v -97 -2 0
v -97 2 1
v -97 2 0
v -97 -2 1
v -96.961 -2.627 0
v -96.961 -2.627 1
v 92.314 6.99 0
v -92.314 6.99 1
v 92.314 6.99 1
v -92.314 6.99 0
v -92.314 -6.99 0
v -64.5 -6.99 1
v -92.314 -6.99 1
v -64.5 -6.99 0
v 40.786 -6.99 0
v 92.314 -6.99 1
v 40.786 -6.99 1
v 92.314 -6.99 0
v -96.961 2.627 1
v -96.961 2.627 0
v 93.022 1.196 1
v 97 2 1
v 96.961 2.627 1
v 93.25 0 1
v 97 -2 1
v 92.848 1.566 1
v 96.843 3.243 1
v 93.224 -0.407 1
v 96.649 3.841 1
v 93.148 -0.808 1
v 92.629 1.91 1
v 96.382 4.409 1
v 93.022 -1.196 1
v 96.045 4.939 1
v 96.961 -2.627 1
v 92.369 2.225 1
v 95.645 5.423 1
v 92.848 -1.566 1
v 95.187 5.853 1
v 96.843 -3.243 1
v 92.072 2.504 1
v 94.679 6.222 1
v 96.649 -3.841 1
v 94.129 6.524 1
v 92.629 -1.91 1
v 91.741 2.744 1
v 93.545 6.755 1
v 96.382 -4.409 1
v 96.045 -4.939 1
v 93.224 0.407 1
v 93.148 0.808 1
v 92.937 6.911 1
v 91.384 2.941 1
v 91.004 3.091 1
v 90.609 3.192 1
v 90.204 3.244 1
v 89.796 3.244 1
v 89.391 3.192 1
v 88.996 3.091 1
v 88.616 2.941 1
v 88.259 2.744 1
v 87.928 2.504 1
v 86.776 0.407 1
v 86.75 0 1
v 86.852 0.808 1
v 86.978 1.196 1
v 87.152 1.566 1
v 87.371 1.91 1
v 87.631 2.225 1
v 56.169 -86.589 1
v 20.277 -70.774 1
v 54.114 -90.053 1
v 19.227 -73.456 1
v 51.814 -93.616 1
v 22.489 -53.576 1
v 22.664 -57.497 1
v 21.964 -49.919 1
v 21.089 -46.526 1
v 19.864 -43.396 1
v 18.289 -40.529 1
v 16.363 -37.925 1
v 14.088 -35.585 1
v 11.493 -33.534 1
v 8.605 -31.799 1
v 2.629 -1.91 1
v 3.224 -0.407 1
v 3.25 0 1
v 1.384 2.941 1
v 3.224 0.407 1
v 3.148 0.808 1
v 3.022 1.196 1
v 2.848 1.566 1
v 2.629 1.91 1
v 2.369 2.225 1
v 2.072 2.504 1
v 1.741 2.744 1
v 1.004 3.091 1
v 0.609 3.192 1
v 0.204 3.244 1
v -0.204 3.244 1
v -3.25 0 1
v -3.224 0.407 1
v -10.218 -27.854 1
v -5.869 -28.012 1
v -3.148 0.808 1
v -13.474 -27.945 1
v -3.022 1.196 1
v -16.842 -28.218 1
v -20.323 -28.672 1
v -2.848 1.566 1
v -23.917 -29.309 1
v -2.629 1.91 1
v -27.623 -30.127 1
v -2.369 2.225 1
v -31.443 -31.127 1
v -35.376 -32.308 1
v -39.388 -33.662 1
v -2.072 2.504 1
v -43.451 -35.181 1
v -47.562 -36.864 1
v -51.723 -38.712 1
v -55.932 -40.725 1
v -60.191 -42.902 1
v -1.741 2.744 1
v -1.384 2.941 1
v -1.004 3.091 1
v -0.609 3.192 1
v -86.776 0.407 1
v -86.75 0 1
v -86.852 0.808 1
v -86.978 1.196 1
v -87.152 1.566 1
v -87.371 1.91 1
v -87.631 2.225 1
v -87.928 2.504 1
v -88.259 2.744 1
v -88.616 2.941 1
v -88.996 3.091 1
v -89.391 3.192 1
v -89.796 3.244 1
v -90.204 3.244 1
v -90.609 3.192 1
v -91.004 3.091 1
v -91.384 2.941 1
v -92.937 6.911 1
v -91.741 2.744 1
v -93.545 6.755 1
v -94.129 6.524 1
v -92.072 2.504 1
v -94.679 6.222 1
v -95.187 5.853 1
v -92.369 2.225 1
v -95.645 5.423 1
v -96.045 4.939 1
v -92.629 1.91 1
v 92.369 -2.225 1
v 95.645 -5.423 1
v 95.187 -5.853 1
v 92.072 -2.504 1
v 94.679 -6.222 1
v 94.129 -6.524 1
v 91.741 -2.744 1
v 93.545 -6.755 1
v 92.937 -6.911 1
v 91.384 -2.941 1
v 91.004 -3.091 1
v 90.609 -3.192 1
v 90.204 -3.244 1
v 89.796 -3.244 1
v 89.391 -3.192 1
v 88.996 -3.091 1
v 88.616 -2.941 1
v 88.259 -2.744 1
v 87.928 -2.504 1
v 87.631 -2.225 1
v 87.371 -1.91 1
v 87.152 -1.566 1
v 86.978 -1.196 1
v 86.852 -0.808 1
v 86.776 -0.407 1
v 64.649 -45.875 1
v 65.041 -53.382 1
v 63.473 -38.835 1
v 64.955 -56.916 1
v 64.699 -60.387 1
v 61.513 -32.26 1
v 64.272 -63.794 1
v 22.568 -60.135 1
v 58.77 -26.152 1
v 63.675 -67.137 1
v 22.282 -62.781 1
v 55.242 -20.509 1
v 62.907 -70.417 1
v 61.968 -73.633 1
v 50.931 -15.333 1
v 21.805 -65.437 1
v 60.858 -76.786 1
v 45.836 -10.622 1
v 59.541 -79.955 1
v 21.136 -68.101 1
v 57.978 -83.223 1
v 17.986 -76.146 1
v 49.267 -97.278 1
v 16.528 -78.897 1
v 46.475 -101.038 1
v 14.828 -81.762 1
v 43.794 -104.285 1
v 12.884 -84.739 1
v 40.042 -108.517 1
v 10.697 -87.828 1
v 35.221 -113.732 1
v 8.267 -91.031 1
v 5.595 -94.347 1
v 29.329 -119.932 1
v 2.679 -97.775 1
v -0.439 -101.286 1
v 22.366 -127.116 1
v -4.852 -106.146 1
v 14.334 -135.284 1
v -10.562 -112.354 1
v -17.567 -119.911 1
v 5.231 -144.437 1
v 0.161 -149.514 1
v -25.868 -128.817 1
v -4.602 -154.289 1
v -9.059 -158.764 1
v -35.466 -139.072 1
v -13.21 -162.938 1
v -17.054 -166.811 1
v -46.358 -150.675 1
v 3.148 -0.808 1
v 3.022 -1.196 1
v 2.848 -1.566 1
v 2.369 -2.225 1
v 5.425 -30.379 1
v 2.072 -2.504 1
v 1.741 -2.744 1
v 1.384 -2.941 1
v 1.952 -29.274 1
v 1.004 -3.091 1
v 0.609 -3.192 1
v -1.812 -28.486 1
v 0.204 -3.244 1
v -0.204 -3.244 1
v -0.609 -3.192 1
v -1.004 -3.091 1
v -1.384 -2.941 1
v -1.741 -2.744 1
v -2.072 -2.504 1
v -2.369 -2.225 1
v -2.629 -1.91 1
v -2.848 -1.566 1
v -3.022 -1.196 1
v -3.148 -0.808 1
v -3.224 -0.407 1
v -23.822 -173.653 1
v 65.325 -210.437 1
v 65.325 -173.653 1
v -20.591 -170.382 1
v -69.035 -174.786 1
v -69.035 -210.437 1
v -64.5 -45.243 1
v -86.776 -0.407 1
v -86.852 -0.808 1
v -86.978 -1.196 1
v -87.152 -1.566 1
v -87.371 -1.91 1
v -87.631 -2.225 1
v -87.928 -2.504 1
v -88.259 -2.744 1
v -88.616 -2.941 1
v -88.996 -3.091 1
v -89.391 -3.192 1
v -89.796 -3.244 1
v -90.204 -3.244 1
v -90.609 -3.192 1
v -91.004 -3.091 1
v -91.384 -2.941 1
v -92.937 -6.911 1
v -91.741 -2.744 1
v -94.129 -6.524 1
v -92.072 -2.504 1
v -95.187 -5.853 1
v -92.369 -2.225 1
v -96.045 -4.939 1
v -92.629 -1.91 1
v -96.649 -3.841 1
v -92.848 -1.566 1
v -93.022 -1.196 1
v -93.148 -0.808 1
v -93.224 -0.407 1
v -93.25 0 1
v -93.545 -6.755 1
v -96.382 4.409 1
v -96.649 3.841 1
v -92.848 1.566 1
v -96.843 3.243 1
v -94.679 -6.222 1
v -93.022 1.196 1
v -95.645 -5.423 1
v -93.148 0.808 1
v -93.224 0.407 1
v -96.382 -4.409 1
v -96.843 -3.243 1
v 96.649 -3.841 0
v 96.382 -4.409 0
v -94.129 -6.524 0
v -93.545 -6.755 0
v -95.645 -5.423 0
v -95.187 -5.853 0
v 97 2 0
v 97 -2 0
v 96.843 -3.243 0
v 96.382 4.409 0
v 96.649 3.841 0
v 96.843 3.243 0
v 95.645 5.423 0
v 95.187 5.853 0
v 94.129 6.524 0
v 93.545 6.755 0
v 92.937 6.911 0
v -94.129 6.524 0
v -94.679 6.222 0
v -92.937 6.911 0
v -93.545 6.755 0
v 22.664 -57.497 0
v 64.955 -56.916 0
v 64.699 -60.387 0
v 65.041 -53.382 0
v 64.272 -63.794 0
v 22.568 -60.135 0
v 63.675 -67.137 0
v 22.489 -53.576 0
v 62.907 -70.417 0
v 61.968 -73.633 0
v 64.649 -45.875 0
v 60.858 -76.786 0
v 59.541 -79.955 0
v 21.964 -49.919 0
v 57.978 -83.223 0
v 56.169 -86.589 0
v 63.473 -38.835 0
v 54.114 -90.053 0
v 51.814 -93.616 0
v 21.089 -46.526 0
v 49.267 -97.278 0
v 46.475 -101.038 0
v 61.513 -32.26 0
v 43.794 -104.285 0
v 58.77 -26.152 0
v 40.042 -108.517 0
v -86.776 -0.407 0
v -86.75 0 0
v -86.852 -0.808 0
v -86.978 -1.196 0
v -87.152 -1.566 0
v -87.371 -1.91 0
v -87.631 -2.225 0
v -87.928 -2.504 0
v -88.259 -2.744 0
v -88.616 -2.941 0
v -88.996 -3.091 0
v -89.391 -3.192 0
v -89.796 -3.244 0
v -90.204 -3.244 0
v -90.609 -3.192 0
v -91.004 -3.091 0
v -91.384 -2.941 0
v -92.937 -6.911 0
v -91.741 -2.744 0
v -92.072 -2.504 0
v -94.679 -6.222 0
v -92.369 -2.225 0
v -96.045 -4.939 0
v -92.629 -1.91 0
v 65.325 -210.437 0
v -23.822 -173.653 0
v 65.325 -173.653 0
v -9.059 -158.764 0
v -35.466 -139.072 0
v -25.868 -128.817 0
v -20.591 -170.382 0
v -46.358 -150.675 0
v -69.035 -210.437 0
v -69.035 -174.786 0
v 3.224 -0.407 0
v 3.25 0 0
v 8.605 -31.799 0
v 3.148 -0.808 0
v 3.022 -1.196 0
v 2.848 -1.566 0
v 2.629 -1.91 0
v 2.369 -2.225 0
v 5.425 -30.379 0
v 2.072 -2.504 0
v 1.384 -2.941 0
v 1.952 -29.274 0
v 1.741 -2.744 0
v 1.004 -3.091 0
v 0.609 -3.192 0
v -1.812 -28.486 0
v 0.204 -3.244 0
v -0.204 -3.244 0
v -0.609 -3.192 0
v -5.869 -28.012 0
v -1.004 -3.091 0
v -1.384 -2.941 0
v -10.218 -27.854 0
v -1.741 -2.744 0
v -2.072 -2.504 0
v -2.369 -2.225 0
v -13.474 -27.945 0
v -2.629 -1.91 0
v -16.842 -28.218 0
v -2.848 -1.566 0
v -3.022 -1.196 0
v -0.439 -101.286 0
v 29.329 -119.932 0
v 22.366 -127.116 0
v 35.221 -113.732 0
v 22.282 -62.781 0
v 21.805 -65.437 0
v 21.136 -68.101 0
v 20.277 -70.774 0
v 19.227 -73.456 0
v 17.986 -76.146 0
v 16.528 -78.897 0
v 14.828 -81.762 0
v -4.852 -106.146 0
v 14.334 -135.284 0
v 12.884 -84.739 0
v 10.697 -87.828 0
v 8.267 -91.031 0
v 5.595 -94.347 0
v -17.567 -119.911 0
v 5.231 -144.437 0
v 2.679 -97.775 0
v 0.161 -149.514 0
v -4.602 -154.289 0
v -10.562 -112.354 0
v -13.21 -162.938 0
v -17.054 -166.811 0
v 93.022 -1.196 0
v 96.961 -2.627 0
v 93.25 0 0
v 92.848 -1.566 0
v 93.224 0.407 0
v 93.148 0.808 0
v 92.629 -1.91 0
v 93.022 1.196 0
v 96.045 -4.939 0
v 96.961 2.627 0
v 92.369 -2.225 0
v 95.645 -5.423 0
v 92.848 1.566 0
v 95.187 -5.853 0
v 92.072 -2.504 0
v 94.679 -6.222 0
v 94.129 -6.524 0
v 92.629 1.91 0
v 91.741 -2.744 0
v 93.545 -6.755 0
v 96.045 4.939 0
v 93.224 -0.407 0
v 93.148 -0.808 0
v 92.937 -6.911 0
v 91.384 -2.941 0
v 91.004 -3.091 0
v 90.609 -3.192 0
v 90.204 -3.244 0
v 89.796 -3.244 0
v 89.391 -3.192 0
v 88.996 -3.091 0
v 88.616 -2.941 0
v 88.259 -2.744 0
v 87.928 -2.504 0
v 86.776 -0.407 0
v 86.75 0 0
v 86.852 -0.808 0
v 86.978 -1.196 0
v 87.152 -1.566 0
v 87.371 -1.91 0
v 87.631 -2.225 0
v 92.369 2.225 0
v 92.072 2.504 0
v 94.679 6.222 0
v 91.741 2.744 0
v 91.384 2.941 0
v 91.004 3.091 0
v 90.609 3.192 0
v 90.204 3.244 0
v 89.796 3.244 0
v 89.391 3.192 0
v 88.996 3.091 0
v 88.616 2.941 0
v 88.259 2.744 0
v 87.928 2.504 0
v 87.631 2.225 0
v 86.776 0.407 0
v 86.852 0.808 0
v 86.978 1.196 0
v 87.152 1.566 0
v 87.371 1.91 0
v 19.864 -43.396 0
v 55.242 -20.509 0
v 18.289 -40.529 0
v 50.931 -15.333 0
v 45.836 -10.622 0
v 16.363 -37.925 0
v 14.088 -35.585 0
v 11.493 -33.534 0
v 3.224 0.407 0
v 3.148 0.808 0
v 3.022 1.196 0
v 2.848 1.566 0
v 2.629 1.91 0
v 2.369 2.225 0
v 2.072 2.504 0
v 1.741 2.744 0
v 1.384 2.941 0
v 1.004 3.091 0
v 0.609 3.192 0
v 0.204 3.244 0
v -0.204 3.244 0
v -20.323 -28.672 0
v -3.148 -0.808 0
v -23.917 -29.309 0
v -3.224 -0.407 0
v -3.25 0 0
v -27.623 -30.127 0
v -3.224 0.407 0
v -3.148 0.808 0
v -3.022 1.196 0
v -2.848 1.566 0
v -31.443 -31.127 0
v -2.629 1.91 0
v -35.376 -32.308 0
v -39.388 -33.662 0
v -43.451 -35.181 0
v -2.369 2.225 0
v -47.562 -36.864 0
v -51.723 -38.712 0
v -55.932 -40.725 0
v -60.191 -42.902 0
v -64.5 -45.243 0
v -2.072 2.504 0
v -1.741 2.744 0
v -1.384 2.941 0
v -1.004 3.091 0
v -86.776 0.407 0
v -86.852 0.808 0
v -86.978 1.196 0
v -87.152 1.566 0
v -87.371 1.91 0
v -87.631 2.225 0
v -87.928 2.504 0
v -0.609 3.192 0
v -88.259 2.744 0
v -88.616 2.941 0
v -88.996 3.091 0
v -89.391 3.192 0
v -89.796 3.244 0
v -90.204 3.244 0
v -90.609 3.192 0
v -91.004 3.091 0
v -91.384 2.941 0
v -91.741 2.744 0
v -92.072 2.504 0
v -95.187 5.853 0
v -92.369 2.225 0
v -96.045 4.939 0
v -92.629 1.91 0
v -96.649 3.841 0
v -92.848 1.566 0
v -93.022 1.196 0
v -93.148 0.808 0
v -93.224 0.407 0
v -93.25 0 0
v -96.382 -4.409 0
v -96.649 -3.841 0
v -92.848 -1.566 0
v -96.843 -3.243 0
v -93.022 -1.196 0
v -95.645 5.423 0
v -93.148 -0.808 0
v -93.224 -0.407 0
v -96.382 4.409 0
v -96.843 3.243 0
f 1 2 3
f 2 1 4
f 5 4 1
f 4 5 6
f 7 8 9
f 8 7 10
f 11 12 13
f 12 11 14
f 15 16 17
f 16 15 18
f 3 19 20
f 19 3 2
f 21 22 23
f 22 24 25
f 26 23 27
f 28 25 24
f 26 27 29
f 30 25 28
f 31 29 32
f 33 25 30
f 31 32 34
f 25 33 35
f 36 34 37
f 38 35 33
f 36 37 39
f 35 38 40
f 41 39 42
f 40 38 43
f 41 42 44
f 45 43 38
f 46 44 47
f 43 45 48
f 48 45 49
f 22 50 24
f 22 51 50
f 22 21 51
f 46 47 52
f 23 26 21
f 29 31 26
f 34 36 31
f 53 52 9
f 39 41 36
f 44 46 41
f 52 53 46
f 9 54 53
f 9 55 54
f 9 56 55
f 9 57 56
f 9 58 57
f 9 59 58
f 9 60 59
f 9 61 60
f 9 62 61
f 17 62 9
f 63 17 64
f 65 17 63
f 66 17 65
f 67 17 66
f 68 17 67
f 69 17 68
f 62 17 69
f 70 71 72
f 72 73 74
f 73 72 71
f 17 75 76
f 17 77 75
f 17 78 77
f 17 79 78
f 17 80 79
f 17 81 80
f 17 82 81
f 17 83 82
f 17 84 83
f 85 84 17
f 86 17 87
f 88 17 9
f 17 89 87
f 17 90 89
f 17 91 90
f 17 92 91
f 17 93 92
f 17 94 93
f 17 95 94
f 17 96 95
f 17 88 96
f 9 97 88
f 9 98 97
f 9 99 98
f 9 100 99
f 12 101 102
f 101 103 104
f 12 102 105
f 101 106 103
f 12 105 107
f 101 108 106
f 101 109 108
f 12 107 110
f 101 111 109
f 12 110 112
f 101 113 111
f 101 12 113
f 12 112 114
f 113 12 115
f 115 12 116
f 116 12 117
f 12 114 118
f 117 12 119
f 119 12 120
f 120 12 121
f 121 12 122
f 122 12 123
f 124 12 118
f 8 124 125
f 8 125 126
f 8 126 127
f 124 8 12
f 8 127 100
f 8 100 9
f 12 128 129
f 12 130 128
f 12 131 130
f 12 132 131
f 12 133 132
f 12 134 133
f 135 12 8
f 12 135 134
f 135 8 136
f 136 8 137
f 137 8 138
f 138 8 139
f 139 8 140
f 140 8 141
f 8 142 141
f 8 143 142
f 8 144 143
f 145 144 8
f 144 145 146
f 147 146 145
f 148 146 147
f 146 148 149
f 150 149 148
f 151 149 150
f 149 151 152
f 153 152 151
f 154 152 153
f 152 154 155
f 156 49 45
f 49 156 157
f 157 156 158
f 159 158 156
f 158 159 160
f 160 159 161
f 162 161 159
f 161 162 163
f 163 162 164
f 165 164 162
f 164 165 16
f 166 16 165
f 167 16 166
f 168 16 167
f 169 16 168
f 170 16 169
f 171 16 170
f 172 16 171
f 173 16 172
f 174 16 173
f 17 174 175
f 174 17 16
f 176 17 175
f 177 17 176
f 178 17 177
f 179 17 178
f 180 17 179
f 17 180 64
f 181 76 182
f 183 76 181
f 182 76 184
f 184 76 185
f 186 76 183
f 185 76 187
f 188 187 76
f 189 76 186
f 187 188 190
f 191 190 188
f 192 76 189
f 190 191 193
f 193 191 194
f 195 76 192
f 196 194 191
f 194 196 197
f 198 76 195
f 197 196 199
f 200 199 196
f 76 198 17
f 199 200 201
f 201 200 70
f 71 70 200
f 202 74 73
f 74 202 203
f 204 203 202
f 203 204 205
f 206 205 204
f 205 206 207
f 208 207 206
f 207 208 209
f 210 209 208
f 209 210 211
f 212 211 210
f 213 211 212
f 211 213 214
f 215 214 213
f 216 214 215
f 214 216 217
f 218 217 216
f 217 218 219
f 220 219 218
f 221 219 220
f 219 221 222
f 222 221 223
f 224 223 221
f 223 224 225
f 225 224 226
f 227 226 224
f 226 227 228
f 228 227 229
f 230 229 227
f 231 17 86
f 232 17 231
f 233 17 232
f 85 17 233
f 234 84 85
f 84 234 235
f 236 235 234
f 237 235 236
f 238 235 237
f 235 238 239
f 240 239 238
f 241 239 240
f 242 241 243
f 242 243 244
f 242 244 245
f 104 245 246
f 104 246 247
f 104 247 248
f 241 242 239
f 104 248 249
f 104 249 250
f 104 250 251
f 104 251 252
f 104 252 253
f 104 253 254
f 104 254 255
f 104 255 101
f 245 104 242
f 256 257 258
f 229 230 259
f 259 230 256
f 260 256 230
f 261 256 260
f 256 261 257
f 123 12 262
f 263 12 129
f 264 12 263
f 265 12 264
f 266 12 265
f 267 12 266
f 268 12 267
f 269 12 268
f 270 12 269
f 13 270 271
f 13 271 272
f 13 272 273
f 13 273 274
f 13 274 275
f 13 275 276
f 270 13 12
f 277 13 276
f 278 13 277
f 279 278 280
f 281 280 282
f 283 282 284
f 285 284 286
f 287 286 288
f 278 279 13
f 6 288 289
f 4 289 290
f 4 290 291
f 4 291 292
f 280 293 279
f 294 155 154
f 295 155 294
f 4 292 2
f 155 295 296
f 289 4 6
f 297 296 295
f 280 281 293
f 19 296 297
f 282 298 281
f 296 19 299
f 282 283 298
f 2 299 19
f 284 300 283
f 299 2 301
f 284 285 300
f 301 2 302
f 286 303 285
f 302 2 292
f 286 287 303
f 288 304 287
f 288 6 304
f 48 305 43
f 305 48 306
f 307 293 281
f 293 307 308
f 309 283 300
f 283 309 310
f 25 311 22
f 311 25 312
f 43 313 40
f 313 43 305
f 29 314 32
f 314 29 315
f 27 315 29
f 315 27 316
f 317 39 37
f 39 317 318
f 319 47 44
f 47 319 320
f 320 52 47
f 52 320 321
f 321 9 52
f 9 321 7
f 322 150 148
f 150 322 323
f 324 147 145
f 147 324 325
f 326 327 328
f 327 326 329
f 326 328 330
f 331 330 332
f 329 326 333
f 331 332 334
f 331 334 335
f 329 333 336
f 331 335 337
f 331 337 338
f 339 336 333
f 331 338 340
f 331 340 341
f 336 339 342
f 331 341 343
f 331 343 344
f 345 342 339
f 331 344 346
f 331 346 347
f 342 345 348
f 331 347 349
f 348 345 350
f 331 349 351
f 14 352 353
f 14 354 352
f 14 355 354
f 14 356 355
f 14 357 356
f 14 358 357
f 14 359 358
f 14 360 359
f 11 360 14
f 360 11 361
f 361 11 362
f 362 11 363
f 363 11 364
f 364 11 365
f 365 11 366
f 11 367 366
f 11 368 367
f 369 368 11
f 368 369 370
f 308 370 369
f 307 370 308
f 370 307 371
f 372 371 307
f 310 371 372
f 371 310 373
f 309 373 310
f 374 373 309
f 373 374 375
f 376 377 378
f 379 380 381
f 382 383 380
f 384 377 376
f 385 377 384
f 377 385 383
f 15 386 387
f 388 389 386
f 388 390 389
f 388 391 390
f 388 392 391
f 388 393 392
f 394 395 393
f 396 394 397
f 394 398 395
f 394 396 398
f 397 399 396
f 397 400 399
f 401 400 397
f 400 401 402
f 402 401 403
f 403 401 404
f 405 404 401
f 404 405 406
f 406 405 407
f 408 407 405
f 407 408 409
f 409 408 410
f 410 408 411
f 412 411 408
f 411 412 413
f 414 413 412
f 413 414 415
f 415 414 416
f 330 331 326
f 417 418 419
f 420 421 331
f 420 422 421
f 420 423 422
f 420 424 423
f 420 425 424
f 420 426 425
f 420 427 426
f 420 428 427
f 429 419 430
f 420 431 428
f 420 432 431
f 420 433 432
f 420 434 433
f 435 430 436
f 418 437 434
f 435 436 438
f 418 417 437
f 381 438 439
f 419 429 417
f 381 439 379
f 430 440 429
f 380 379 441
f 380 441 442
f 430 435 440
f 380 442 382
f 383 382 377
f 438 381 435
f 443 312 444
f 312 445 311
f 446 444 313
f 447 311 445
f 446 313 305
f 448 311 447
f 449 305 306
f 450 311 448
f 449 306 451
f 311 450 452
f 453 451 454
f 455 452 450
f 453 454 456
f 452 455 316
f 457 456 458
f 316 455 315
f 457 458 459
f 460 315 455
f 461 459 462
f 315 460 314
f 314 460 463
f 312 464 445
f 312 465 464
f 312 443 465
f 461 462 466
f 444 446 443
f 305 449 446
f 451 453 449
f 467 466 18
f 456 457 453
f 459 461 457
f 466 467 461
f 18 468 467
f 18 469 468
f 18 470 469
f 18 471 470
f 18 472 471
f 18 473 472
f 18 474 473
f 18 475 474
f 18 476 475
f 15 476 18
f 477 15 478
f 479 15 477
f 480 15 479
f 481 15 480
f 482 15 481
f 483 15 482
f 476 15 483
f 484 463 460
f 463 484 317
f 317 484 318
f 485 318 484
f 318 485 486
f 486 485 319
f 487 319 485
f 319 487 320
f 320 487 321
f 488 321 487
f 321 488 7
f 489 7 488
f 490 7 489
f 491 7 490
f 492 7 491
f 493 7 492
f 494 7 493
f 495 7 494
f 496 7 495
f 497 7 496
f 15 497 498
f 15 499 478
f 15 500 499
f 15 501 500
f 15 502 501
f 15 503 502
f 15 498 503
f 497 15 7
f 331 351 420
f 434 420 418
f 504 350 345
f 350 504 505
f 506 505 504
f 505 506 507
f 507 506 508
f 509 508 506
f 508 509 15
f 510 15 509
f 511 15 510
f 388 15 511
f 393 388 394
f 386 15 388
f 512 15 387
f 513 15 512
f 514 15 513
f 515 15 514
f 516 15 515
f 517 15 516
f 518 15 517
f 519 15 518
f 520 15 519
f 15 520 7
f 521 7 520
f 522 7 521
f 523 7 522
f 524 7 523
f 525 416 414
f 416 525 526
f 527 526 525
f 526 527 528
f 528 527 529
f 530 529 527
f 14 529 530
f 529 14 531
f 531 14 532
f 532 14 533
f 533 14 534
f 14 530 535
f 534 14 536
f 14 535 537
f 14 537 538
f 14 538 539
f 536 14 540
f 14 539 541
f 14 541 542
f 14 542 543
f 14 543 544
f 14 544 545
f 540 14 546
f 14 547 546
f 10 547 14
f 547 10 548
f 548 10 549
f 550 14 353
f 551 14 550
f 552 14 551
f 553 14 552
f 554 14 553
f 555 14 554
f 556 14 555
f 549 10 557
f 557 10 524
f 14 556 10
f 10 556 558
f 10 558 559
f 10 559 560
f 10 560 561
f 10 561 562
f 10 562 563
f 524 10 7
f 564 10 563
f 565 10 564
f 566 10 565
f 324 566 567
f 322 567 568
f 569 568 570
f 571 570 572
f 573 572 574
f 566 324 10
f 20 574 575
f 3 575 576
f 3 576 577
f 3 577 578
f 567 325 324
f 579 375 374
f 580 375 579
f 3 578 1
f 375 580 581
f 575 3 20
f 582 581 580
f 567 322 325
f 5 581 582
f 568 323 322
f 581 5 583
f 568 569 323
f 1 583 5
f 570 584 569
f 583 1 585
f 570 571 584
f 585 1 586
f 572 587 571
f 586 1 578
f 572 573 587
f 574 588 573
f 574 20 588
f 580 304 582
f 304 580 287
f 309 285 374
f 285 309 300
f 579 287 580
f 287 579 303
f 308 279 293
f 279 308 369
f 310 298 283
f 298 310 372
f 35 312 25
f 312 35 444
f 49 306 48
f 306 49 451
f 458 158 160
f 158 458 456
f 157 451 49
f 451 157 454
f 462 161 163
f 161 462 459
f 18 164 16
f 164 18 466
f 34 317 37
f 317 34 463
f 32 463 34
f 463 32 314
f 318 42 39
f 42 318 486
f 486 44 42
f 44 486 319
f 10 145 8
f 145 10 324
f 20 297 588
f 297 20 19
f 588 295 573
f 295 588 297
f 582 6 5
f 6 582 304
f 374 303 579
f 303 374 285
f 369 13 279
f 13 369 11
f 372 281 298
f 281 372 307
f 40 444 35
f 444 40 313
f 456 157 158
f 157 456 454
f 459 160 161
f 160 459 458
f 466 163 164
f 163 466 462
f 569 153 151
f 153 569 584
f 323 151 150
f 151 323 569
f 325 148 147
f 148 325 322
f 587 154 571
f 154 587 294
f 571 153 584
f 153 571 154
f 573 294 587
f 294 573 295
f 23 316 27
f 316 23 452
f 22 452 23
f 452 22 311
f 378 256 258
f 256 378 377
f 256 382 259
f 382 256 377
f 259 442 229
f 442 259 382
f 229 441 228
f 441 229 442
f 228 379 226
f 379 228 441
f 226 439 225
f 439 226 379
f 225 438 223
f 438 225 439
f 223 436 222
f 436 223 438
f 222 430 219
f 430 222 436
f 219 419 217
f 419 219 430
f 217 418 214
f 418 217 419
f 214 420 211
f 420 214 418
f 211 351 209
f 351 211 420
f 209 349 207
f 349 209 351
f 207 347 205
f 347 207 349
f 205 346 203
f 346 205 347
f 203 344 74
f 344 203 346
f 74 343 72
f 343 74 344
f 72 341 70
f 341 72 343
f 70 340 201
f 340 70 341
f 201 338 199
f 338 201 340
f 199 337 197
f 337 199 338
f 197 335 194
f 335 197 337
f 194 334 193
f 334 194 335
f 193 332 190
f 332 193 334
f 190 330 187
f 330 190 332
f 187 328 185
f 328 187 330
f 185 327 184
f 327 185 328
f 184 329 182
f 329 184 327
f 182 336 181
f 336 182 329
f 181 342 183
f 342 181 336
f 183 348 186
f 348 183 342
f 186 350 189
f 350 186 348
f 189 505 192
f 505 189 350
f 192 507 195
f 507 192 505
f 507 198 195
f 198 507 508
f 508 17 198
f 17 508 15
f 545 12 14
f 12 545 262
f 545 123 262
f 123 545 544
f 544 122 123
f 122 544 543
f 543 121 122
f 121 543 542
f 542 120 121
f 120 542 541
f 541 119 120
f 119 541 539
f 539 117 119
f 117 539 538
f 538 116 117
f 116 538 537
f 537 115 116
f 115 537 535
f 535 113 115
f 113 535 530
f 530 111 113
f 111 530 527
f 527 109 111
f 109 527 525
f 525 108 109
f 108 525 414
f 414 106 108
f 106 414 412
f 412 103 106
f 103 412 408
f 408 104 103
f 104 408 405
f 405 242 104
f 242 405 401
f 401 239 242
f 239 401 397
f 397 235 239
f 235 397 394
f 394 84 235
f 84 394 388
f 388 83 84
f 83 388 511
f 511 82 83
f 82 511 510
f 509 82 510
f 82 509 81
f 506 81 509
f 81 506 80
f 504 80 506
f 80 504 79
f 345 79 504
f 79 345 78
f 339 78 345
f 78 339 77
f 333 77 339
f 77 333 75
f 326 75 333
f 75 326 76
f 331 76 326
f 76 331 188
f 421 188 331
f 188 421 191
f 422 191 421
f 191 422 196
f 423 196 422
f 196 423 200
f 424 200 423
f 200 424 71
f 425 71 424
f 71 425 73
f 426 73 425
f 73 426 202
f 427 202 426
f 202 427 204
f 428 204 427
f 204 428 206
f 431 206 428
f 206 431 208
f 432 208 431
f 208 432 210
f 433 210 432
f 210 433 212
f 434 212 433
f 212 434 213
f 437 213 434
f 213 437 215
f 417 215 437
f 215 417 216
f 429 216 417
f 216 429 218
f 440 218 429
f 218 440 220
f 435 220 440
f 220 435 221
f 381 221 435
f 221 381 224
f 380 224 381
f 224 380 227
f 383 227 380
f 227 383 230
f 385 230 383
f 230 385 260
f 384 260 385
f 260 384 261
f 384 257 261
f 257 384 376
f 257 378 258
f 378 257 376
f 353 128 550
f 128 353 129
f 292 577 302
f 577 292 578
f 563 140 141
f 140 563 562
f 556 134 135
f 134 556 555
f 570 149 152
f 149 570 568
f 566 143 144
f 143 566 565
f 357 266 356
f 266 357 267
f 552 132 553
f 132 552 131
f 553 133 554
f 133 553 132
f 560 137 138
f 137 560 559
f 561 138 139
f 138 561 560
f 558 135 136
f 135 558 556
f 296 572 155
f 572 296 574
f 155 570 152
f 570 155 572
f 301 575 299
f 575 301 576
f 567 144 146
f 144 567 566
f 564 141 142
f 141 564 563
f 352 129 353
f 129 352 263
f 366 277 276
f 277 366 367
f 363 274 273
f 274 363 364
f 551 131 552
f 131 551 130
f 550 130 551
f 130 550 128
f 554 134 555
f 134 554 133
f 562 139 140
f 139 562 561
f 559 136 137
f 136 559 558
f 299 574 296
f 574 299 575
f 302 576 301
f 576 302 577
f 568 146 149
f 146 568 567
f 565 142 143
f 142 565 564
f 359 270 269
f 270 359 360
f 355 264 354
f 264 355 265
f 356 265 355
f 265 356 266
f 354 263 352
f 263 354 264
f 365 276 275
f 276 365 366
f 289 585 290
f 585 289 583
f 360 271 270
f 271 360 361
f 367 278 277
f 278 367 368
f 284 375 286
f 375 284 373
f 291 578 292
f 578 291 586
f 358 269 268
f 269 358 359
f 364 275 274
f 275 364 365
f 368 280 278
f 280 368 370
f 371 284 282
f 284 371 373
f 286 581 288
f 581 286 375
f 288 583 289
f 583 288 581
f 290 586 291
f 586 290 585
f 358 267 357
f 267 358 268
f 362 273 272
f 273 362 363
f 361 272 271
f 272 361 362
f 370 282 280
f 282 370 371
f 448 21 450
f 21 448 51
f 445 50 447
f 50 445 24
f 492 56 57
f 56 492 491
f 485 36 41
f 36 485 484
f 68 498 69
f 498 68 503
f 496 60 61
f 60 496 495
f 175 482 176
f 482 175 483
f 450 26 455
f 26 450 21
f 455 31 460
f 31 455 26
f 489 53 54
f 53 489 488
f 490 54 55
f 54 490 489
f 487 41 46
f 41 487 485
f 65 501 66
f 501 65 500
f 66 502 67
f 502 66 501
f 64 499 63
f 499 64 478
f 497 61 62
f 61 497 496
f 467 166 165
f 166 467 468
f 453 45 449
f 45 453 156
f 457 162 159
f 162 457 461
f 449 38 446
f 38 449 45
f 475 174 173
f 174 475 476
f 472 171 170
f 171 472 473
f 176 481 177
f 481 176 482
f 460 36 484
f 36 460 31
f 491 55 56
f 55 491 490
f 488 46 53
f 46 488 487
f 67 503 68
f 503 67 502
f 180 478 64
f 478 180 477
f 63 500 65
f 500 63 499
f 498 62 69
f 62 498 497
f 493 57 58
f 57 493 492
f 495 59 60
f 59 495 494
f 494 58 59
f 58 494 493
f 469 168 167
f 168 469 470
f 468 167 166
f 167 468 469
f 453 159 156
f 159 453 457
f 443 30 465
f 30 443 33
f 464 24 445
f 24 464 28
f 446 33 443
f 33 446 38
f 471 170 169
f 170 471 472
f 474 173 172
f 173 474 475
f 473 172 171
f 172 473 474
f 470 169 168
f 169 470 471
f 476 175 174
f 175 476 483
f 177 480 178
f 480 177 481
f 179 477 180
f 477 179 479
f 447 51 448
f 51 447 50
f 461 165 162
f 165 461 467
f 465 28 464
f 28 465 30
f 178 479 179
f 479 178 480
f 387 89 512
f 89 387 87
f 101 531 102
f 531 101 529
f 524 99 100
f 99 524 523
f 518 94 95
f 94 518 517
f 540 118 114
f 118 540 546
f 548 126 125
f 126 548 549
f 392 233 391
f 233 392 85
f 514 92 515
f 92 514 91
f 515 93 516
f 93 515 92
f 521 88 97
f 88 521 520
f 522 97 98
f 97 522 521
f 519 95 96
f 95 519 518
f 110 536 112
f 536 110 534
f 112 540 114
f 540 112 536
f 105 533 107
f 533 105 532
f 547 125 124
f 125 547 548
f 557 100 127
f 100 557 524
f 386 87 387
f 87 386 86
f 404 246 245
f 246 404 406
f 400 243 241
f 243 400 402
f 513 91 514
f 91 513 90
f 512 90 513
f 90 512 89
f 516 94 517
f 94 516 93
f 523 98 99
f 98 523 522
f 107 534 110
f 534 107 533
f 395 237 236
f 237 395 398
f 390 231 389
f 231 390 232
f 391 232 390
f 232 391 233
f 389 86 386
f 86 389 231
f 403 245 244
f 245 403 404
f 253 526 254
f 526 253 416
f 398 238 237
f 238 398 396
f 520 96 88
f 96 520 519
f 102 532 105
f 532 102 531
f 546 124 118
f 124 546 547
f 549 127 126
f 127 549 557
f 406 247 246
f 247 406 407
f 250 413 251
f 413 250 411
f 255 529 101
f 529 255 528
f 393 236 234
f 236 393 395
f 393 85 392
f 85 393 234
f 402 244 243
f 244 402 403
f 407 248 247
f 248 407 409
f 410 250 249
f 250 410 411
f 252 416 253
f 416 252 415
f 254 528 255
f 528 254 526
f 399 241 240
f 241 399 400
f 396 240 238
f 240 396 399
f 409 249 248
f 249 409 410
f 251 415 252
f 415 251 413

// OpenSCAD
$fn = 50;


difference() {
	union() {
		translate(v = [0, 0, 0]) {
			rotate(a = [0, 0, 0]) {
				hull() {
					translate(v = [-92.0000000000, 2.0000000000, 0]) {
						rotate(a = [0, 0, 0]) {
							translate(v = [0, 0, 0]) {
								rotate(a = [0, 0, 0]) {
									cylinder(h = 1, r = 5);
								}
							}
						}
					}
					translate(v = [92.0000000000, 2.0000000000, 0]) {
						rotate(a = [0, 0, 0]) {
							translate(v = [0, 0, 0]) {
								rotate(a = [0, 0, 0]) {
									cylinder(h = 1, r = 5);
								}
							}
						}
					}
					translate(v = [-92.0000000000, -2.0000000000, 0]) {
						rotate(a = [0, 0, 0]) {
							translate(v = [0, 0, 0]) {
								rotate(a = [0, 0, 0]) {
									cylinder(h = 1, r = 5);
								}
							}
						}
					}
					translate(v = [92.0000000000, -2.0000000000, 0]) {
						rotate(a = [0, 0, 0]) {
							translate(v = [0, 0, 0]) {
								rotate(a = [0, 0, 0]) {
									cylinder(h = 1, r = 5);
								}
							}
						}
					}
				}
			}
		}
		translate(v = [0, 0, 0]) {
			rotate(a = [0, 0, 0]) {
				linear_extrude(height = 1) {
					text(font = "DejaVu Sans Mono:style=Bold", halign = "center", size = 209.0000000000, text = "2", valign = "top");
				}
			}
		}
	}
	union() {
		translate(v = [-90.0000000000, 0.0000000000, -125.0000000000]) {
			rotate(a = [0, 0, 0]) {
				cylinder(h = 250, r = 3.2500000000);
			}
		}
		translate(v = [90.0000000000, 0.0000000000, -125.0000000000]) {
			rotate(a = [0, 0, 0]) {
				cylinder(h = 250, r = 3.2500000000);
			}
		}
		translate(v = [90.0000000000, 0.0000000000, -125.0000000000]) {
			rotate(a = [0, 0, 0]) {
				cylinder(h = 250, r = 3.2500000000);
			}
		}
		translate(v = [0, 0, -125.0000000000]) {
			rotate(a = [0, 0, 0]) {
				cylinder(h = 250, r = 3.2500000000);
			}
		}
	}
}
